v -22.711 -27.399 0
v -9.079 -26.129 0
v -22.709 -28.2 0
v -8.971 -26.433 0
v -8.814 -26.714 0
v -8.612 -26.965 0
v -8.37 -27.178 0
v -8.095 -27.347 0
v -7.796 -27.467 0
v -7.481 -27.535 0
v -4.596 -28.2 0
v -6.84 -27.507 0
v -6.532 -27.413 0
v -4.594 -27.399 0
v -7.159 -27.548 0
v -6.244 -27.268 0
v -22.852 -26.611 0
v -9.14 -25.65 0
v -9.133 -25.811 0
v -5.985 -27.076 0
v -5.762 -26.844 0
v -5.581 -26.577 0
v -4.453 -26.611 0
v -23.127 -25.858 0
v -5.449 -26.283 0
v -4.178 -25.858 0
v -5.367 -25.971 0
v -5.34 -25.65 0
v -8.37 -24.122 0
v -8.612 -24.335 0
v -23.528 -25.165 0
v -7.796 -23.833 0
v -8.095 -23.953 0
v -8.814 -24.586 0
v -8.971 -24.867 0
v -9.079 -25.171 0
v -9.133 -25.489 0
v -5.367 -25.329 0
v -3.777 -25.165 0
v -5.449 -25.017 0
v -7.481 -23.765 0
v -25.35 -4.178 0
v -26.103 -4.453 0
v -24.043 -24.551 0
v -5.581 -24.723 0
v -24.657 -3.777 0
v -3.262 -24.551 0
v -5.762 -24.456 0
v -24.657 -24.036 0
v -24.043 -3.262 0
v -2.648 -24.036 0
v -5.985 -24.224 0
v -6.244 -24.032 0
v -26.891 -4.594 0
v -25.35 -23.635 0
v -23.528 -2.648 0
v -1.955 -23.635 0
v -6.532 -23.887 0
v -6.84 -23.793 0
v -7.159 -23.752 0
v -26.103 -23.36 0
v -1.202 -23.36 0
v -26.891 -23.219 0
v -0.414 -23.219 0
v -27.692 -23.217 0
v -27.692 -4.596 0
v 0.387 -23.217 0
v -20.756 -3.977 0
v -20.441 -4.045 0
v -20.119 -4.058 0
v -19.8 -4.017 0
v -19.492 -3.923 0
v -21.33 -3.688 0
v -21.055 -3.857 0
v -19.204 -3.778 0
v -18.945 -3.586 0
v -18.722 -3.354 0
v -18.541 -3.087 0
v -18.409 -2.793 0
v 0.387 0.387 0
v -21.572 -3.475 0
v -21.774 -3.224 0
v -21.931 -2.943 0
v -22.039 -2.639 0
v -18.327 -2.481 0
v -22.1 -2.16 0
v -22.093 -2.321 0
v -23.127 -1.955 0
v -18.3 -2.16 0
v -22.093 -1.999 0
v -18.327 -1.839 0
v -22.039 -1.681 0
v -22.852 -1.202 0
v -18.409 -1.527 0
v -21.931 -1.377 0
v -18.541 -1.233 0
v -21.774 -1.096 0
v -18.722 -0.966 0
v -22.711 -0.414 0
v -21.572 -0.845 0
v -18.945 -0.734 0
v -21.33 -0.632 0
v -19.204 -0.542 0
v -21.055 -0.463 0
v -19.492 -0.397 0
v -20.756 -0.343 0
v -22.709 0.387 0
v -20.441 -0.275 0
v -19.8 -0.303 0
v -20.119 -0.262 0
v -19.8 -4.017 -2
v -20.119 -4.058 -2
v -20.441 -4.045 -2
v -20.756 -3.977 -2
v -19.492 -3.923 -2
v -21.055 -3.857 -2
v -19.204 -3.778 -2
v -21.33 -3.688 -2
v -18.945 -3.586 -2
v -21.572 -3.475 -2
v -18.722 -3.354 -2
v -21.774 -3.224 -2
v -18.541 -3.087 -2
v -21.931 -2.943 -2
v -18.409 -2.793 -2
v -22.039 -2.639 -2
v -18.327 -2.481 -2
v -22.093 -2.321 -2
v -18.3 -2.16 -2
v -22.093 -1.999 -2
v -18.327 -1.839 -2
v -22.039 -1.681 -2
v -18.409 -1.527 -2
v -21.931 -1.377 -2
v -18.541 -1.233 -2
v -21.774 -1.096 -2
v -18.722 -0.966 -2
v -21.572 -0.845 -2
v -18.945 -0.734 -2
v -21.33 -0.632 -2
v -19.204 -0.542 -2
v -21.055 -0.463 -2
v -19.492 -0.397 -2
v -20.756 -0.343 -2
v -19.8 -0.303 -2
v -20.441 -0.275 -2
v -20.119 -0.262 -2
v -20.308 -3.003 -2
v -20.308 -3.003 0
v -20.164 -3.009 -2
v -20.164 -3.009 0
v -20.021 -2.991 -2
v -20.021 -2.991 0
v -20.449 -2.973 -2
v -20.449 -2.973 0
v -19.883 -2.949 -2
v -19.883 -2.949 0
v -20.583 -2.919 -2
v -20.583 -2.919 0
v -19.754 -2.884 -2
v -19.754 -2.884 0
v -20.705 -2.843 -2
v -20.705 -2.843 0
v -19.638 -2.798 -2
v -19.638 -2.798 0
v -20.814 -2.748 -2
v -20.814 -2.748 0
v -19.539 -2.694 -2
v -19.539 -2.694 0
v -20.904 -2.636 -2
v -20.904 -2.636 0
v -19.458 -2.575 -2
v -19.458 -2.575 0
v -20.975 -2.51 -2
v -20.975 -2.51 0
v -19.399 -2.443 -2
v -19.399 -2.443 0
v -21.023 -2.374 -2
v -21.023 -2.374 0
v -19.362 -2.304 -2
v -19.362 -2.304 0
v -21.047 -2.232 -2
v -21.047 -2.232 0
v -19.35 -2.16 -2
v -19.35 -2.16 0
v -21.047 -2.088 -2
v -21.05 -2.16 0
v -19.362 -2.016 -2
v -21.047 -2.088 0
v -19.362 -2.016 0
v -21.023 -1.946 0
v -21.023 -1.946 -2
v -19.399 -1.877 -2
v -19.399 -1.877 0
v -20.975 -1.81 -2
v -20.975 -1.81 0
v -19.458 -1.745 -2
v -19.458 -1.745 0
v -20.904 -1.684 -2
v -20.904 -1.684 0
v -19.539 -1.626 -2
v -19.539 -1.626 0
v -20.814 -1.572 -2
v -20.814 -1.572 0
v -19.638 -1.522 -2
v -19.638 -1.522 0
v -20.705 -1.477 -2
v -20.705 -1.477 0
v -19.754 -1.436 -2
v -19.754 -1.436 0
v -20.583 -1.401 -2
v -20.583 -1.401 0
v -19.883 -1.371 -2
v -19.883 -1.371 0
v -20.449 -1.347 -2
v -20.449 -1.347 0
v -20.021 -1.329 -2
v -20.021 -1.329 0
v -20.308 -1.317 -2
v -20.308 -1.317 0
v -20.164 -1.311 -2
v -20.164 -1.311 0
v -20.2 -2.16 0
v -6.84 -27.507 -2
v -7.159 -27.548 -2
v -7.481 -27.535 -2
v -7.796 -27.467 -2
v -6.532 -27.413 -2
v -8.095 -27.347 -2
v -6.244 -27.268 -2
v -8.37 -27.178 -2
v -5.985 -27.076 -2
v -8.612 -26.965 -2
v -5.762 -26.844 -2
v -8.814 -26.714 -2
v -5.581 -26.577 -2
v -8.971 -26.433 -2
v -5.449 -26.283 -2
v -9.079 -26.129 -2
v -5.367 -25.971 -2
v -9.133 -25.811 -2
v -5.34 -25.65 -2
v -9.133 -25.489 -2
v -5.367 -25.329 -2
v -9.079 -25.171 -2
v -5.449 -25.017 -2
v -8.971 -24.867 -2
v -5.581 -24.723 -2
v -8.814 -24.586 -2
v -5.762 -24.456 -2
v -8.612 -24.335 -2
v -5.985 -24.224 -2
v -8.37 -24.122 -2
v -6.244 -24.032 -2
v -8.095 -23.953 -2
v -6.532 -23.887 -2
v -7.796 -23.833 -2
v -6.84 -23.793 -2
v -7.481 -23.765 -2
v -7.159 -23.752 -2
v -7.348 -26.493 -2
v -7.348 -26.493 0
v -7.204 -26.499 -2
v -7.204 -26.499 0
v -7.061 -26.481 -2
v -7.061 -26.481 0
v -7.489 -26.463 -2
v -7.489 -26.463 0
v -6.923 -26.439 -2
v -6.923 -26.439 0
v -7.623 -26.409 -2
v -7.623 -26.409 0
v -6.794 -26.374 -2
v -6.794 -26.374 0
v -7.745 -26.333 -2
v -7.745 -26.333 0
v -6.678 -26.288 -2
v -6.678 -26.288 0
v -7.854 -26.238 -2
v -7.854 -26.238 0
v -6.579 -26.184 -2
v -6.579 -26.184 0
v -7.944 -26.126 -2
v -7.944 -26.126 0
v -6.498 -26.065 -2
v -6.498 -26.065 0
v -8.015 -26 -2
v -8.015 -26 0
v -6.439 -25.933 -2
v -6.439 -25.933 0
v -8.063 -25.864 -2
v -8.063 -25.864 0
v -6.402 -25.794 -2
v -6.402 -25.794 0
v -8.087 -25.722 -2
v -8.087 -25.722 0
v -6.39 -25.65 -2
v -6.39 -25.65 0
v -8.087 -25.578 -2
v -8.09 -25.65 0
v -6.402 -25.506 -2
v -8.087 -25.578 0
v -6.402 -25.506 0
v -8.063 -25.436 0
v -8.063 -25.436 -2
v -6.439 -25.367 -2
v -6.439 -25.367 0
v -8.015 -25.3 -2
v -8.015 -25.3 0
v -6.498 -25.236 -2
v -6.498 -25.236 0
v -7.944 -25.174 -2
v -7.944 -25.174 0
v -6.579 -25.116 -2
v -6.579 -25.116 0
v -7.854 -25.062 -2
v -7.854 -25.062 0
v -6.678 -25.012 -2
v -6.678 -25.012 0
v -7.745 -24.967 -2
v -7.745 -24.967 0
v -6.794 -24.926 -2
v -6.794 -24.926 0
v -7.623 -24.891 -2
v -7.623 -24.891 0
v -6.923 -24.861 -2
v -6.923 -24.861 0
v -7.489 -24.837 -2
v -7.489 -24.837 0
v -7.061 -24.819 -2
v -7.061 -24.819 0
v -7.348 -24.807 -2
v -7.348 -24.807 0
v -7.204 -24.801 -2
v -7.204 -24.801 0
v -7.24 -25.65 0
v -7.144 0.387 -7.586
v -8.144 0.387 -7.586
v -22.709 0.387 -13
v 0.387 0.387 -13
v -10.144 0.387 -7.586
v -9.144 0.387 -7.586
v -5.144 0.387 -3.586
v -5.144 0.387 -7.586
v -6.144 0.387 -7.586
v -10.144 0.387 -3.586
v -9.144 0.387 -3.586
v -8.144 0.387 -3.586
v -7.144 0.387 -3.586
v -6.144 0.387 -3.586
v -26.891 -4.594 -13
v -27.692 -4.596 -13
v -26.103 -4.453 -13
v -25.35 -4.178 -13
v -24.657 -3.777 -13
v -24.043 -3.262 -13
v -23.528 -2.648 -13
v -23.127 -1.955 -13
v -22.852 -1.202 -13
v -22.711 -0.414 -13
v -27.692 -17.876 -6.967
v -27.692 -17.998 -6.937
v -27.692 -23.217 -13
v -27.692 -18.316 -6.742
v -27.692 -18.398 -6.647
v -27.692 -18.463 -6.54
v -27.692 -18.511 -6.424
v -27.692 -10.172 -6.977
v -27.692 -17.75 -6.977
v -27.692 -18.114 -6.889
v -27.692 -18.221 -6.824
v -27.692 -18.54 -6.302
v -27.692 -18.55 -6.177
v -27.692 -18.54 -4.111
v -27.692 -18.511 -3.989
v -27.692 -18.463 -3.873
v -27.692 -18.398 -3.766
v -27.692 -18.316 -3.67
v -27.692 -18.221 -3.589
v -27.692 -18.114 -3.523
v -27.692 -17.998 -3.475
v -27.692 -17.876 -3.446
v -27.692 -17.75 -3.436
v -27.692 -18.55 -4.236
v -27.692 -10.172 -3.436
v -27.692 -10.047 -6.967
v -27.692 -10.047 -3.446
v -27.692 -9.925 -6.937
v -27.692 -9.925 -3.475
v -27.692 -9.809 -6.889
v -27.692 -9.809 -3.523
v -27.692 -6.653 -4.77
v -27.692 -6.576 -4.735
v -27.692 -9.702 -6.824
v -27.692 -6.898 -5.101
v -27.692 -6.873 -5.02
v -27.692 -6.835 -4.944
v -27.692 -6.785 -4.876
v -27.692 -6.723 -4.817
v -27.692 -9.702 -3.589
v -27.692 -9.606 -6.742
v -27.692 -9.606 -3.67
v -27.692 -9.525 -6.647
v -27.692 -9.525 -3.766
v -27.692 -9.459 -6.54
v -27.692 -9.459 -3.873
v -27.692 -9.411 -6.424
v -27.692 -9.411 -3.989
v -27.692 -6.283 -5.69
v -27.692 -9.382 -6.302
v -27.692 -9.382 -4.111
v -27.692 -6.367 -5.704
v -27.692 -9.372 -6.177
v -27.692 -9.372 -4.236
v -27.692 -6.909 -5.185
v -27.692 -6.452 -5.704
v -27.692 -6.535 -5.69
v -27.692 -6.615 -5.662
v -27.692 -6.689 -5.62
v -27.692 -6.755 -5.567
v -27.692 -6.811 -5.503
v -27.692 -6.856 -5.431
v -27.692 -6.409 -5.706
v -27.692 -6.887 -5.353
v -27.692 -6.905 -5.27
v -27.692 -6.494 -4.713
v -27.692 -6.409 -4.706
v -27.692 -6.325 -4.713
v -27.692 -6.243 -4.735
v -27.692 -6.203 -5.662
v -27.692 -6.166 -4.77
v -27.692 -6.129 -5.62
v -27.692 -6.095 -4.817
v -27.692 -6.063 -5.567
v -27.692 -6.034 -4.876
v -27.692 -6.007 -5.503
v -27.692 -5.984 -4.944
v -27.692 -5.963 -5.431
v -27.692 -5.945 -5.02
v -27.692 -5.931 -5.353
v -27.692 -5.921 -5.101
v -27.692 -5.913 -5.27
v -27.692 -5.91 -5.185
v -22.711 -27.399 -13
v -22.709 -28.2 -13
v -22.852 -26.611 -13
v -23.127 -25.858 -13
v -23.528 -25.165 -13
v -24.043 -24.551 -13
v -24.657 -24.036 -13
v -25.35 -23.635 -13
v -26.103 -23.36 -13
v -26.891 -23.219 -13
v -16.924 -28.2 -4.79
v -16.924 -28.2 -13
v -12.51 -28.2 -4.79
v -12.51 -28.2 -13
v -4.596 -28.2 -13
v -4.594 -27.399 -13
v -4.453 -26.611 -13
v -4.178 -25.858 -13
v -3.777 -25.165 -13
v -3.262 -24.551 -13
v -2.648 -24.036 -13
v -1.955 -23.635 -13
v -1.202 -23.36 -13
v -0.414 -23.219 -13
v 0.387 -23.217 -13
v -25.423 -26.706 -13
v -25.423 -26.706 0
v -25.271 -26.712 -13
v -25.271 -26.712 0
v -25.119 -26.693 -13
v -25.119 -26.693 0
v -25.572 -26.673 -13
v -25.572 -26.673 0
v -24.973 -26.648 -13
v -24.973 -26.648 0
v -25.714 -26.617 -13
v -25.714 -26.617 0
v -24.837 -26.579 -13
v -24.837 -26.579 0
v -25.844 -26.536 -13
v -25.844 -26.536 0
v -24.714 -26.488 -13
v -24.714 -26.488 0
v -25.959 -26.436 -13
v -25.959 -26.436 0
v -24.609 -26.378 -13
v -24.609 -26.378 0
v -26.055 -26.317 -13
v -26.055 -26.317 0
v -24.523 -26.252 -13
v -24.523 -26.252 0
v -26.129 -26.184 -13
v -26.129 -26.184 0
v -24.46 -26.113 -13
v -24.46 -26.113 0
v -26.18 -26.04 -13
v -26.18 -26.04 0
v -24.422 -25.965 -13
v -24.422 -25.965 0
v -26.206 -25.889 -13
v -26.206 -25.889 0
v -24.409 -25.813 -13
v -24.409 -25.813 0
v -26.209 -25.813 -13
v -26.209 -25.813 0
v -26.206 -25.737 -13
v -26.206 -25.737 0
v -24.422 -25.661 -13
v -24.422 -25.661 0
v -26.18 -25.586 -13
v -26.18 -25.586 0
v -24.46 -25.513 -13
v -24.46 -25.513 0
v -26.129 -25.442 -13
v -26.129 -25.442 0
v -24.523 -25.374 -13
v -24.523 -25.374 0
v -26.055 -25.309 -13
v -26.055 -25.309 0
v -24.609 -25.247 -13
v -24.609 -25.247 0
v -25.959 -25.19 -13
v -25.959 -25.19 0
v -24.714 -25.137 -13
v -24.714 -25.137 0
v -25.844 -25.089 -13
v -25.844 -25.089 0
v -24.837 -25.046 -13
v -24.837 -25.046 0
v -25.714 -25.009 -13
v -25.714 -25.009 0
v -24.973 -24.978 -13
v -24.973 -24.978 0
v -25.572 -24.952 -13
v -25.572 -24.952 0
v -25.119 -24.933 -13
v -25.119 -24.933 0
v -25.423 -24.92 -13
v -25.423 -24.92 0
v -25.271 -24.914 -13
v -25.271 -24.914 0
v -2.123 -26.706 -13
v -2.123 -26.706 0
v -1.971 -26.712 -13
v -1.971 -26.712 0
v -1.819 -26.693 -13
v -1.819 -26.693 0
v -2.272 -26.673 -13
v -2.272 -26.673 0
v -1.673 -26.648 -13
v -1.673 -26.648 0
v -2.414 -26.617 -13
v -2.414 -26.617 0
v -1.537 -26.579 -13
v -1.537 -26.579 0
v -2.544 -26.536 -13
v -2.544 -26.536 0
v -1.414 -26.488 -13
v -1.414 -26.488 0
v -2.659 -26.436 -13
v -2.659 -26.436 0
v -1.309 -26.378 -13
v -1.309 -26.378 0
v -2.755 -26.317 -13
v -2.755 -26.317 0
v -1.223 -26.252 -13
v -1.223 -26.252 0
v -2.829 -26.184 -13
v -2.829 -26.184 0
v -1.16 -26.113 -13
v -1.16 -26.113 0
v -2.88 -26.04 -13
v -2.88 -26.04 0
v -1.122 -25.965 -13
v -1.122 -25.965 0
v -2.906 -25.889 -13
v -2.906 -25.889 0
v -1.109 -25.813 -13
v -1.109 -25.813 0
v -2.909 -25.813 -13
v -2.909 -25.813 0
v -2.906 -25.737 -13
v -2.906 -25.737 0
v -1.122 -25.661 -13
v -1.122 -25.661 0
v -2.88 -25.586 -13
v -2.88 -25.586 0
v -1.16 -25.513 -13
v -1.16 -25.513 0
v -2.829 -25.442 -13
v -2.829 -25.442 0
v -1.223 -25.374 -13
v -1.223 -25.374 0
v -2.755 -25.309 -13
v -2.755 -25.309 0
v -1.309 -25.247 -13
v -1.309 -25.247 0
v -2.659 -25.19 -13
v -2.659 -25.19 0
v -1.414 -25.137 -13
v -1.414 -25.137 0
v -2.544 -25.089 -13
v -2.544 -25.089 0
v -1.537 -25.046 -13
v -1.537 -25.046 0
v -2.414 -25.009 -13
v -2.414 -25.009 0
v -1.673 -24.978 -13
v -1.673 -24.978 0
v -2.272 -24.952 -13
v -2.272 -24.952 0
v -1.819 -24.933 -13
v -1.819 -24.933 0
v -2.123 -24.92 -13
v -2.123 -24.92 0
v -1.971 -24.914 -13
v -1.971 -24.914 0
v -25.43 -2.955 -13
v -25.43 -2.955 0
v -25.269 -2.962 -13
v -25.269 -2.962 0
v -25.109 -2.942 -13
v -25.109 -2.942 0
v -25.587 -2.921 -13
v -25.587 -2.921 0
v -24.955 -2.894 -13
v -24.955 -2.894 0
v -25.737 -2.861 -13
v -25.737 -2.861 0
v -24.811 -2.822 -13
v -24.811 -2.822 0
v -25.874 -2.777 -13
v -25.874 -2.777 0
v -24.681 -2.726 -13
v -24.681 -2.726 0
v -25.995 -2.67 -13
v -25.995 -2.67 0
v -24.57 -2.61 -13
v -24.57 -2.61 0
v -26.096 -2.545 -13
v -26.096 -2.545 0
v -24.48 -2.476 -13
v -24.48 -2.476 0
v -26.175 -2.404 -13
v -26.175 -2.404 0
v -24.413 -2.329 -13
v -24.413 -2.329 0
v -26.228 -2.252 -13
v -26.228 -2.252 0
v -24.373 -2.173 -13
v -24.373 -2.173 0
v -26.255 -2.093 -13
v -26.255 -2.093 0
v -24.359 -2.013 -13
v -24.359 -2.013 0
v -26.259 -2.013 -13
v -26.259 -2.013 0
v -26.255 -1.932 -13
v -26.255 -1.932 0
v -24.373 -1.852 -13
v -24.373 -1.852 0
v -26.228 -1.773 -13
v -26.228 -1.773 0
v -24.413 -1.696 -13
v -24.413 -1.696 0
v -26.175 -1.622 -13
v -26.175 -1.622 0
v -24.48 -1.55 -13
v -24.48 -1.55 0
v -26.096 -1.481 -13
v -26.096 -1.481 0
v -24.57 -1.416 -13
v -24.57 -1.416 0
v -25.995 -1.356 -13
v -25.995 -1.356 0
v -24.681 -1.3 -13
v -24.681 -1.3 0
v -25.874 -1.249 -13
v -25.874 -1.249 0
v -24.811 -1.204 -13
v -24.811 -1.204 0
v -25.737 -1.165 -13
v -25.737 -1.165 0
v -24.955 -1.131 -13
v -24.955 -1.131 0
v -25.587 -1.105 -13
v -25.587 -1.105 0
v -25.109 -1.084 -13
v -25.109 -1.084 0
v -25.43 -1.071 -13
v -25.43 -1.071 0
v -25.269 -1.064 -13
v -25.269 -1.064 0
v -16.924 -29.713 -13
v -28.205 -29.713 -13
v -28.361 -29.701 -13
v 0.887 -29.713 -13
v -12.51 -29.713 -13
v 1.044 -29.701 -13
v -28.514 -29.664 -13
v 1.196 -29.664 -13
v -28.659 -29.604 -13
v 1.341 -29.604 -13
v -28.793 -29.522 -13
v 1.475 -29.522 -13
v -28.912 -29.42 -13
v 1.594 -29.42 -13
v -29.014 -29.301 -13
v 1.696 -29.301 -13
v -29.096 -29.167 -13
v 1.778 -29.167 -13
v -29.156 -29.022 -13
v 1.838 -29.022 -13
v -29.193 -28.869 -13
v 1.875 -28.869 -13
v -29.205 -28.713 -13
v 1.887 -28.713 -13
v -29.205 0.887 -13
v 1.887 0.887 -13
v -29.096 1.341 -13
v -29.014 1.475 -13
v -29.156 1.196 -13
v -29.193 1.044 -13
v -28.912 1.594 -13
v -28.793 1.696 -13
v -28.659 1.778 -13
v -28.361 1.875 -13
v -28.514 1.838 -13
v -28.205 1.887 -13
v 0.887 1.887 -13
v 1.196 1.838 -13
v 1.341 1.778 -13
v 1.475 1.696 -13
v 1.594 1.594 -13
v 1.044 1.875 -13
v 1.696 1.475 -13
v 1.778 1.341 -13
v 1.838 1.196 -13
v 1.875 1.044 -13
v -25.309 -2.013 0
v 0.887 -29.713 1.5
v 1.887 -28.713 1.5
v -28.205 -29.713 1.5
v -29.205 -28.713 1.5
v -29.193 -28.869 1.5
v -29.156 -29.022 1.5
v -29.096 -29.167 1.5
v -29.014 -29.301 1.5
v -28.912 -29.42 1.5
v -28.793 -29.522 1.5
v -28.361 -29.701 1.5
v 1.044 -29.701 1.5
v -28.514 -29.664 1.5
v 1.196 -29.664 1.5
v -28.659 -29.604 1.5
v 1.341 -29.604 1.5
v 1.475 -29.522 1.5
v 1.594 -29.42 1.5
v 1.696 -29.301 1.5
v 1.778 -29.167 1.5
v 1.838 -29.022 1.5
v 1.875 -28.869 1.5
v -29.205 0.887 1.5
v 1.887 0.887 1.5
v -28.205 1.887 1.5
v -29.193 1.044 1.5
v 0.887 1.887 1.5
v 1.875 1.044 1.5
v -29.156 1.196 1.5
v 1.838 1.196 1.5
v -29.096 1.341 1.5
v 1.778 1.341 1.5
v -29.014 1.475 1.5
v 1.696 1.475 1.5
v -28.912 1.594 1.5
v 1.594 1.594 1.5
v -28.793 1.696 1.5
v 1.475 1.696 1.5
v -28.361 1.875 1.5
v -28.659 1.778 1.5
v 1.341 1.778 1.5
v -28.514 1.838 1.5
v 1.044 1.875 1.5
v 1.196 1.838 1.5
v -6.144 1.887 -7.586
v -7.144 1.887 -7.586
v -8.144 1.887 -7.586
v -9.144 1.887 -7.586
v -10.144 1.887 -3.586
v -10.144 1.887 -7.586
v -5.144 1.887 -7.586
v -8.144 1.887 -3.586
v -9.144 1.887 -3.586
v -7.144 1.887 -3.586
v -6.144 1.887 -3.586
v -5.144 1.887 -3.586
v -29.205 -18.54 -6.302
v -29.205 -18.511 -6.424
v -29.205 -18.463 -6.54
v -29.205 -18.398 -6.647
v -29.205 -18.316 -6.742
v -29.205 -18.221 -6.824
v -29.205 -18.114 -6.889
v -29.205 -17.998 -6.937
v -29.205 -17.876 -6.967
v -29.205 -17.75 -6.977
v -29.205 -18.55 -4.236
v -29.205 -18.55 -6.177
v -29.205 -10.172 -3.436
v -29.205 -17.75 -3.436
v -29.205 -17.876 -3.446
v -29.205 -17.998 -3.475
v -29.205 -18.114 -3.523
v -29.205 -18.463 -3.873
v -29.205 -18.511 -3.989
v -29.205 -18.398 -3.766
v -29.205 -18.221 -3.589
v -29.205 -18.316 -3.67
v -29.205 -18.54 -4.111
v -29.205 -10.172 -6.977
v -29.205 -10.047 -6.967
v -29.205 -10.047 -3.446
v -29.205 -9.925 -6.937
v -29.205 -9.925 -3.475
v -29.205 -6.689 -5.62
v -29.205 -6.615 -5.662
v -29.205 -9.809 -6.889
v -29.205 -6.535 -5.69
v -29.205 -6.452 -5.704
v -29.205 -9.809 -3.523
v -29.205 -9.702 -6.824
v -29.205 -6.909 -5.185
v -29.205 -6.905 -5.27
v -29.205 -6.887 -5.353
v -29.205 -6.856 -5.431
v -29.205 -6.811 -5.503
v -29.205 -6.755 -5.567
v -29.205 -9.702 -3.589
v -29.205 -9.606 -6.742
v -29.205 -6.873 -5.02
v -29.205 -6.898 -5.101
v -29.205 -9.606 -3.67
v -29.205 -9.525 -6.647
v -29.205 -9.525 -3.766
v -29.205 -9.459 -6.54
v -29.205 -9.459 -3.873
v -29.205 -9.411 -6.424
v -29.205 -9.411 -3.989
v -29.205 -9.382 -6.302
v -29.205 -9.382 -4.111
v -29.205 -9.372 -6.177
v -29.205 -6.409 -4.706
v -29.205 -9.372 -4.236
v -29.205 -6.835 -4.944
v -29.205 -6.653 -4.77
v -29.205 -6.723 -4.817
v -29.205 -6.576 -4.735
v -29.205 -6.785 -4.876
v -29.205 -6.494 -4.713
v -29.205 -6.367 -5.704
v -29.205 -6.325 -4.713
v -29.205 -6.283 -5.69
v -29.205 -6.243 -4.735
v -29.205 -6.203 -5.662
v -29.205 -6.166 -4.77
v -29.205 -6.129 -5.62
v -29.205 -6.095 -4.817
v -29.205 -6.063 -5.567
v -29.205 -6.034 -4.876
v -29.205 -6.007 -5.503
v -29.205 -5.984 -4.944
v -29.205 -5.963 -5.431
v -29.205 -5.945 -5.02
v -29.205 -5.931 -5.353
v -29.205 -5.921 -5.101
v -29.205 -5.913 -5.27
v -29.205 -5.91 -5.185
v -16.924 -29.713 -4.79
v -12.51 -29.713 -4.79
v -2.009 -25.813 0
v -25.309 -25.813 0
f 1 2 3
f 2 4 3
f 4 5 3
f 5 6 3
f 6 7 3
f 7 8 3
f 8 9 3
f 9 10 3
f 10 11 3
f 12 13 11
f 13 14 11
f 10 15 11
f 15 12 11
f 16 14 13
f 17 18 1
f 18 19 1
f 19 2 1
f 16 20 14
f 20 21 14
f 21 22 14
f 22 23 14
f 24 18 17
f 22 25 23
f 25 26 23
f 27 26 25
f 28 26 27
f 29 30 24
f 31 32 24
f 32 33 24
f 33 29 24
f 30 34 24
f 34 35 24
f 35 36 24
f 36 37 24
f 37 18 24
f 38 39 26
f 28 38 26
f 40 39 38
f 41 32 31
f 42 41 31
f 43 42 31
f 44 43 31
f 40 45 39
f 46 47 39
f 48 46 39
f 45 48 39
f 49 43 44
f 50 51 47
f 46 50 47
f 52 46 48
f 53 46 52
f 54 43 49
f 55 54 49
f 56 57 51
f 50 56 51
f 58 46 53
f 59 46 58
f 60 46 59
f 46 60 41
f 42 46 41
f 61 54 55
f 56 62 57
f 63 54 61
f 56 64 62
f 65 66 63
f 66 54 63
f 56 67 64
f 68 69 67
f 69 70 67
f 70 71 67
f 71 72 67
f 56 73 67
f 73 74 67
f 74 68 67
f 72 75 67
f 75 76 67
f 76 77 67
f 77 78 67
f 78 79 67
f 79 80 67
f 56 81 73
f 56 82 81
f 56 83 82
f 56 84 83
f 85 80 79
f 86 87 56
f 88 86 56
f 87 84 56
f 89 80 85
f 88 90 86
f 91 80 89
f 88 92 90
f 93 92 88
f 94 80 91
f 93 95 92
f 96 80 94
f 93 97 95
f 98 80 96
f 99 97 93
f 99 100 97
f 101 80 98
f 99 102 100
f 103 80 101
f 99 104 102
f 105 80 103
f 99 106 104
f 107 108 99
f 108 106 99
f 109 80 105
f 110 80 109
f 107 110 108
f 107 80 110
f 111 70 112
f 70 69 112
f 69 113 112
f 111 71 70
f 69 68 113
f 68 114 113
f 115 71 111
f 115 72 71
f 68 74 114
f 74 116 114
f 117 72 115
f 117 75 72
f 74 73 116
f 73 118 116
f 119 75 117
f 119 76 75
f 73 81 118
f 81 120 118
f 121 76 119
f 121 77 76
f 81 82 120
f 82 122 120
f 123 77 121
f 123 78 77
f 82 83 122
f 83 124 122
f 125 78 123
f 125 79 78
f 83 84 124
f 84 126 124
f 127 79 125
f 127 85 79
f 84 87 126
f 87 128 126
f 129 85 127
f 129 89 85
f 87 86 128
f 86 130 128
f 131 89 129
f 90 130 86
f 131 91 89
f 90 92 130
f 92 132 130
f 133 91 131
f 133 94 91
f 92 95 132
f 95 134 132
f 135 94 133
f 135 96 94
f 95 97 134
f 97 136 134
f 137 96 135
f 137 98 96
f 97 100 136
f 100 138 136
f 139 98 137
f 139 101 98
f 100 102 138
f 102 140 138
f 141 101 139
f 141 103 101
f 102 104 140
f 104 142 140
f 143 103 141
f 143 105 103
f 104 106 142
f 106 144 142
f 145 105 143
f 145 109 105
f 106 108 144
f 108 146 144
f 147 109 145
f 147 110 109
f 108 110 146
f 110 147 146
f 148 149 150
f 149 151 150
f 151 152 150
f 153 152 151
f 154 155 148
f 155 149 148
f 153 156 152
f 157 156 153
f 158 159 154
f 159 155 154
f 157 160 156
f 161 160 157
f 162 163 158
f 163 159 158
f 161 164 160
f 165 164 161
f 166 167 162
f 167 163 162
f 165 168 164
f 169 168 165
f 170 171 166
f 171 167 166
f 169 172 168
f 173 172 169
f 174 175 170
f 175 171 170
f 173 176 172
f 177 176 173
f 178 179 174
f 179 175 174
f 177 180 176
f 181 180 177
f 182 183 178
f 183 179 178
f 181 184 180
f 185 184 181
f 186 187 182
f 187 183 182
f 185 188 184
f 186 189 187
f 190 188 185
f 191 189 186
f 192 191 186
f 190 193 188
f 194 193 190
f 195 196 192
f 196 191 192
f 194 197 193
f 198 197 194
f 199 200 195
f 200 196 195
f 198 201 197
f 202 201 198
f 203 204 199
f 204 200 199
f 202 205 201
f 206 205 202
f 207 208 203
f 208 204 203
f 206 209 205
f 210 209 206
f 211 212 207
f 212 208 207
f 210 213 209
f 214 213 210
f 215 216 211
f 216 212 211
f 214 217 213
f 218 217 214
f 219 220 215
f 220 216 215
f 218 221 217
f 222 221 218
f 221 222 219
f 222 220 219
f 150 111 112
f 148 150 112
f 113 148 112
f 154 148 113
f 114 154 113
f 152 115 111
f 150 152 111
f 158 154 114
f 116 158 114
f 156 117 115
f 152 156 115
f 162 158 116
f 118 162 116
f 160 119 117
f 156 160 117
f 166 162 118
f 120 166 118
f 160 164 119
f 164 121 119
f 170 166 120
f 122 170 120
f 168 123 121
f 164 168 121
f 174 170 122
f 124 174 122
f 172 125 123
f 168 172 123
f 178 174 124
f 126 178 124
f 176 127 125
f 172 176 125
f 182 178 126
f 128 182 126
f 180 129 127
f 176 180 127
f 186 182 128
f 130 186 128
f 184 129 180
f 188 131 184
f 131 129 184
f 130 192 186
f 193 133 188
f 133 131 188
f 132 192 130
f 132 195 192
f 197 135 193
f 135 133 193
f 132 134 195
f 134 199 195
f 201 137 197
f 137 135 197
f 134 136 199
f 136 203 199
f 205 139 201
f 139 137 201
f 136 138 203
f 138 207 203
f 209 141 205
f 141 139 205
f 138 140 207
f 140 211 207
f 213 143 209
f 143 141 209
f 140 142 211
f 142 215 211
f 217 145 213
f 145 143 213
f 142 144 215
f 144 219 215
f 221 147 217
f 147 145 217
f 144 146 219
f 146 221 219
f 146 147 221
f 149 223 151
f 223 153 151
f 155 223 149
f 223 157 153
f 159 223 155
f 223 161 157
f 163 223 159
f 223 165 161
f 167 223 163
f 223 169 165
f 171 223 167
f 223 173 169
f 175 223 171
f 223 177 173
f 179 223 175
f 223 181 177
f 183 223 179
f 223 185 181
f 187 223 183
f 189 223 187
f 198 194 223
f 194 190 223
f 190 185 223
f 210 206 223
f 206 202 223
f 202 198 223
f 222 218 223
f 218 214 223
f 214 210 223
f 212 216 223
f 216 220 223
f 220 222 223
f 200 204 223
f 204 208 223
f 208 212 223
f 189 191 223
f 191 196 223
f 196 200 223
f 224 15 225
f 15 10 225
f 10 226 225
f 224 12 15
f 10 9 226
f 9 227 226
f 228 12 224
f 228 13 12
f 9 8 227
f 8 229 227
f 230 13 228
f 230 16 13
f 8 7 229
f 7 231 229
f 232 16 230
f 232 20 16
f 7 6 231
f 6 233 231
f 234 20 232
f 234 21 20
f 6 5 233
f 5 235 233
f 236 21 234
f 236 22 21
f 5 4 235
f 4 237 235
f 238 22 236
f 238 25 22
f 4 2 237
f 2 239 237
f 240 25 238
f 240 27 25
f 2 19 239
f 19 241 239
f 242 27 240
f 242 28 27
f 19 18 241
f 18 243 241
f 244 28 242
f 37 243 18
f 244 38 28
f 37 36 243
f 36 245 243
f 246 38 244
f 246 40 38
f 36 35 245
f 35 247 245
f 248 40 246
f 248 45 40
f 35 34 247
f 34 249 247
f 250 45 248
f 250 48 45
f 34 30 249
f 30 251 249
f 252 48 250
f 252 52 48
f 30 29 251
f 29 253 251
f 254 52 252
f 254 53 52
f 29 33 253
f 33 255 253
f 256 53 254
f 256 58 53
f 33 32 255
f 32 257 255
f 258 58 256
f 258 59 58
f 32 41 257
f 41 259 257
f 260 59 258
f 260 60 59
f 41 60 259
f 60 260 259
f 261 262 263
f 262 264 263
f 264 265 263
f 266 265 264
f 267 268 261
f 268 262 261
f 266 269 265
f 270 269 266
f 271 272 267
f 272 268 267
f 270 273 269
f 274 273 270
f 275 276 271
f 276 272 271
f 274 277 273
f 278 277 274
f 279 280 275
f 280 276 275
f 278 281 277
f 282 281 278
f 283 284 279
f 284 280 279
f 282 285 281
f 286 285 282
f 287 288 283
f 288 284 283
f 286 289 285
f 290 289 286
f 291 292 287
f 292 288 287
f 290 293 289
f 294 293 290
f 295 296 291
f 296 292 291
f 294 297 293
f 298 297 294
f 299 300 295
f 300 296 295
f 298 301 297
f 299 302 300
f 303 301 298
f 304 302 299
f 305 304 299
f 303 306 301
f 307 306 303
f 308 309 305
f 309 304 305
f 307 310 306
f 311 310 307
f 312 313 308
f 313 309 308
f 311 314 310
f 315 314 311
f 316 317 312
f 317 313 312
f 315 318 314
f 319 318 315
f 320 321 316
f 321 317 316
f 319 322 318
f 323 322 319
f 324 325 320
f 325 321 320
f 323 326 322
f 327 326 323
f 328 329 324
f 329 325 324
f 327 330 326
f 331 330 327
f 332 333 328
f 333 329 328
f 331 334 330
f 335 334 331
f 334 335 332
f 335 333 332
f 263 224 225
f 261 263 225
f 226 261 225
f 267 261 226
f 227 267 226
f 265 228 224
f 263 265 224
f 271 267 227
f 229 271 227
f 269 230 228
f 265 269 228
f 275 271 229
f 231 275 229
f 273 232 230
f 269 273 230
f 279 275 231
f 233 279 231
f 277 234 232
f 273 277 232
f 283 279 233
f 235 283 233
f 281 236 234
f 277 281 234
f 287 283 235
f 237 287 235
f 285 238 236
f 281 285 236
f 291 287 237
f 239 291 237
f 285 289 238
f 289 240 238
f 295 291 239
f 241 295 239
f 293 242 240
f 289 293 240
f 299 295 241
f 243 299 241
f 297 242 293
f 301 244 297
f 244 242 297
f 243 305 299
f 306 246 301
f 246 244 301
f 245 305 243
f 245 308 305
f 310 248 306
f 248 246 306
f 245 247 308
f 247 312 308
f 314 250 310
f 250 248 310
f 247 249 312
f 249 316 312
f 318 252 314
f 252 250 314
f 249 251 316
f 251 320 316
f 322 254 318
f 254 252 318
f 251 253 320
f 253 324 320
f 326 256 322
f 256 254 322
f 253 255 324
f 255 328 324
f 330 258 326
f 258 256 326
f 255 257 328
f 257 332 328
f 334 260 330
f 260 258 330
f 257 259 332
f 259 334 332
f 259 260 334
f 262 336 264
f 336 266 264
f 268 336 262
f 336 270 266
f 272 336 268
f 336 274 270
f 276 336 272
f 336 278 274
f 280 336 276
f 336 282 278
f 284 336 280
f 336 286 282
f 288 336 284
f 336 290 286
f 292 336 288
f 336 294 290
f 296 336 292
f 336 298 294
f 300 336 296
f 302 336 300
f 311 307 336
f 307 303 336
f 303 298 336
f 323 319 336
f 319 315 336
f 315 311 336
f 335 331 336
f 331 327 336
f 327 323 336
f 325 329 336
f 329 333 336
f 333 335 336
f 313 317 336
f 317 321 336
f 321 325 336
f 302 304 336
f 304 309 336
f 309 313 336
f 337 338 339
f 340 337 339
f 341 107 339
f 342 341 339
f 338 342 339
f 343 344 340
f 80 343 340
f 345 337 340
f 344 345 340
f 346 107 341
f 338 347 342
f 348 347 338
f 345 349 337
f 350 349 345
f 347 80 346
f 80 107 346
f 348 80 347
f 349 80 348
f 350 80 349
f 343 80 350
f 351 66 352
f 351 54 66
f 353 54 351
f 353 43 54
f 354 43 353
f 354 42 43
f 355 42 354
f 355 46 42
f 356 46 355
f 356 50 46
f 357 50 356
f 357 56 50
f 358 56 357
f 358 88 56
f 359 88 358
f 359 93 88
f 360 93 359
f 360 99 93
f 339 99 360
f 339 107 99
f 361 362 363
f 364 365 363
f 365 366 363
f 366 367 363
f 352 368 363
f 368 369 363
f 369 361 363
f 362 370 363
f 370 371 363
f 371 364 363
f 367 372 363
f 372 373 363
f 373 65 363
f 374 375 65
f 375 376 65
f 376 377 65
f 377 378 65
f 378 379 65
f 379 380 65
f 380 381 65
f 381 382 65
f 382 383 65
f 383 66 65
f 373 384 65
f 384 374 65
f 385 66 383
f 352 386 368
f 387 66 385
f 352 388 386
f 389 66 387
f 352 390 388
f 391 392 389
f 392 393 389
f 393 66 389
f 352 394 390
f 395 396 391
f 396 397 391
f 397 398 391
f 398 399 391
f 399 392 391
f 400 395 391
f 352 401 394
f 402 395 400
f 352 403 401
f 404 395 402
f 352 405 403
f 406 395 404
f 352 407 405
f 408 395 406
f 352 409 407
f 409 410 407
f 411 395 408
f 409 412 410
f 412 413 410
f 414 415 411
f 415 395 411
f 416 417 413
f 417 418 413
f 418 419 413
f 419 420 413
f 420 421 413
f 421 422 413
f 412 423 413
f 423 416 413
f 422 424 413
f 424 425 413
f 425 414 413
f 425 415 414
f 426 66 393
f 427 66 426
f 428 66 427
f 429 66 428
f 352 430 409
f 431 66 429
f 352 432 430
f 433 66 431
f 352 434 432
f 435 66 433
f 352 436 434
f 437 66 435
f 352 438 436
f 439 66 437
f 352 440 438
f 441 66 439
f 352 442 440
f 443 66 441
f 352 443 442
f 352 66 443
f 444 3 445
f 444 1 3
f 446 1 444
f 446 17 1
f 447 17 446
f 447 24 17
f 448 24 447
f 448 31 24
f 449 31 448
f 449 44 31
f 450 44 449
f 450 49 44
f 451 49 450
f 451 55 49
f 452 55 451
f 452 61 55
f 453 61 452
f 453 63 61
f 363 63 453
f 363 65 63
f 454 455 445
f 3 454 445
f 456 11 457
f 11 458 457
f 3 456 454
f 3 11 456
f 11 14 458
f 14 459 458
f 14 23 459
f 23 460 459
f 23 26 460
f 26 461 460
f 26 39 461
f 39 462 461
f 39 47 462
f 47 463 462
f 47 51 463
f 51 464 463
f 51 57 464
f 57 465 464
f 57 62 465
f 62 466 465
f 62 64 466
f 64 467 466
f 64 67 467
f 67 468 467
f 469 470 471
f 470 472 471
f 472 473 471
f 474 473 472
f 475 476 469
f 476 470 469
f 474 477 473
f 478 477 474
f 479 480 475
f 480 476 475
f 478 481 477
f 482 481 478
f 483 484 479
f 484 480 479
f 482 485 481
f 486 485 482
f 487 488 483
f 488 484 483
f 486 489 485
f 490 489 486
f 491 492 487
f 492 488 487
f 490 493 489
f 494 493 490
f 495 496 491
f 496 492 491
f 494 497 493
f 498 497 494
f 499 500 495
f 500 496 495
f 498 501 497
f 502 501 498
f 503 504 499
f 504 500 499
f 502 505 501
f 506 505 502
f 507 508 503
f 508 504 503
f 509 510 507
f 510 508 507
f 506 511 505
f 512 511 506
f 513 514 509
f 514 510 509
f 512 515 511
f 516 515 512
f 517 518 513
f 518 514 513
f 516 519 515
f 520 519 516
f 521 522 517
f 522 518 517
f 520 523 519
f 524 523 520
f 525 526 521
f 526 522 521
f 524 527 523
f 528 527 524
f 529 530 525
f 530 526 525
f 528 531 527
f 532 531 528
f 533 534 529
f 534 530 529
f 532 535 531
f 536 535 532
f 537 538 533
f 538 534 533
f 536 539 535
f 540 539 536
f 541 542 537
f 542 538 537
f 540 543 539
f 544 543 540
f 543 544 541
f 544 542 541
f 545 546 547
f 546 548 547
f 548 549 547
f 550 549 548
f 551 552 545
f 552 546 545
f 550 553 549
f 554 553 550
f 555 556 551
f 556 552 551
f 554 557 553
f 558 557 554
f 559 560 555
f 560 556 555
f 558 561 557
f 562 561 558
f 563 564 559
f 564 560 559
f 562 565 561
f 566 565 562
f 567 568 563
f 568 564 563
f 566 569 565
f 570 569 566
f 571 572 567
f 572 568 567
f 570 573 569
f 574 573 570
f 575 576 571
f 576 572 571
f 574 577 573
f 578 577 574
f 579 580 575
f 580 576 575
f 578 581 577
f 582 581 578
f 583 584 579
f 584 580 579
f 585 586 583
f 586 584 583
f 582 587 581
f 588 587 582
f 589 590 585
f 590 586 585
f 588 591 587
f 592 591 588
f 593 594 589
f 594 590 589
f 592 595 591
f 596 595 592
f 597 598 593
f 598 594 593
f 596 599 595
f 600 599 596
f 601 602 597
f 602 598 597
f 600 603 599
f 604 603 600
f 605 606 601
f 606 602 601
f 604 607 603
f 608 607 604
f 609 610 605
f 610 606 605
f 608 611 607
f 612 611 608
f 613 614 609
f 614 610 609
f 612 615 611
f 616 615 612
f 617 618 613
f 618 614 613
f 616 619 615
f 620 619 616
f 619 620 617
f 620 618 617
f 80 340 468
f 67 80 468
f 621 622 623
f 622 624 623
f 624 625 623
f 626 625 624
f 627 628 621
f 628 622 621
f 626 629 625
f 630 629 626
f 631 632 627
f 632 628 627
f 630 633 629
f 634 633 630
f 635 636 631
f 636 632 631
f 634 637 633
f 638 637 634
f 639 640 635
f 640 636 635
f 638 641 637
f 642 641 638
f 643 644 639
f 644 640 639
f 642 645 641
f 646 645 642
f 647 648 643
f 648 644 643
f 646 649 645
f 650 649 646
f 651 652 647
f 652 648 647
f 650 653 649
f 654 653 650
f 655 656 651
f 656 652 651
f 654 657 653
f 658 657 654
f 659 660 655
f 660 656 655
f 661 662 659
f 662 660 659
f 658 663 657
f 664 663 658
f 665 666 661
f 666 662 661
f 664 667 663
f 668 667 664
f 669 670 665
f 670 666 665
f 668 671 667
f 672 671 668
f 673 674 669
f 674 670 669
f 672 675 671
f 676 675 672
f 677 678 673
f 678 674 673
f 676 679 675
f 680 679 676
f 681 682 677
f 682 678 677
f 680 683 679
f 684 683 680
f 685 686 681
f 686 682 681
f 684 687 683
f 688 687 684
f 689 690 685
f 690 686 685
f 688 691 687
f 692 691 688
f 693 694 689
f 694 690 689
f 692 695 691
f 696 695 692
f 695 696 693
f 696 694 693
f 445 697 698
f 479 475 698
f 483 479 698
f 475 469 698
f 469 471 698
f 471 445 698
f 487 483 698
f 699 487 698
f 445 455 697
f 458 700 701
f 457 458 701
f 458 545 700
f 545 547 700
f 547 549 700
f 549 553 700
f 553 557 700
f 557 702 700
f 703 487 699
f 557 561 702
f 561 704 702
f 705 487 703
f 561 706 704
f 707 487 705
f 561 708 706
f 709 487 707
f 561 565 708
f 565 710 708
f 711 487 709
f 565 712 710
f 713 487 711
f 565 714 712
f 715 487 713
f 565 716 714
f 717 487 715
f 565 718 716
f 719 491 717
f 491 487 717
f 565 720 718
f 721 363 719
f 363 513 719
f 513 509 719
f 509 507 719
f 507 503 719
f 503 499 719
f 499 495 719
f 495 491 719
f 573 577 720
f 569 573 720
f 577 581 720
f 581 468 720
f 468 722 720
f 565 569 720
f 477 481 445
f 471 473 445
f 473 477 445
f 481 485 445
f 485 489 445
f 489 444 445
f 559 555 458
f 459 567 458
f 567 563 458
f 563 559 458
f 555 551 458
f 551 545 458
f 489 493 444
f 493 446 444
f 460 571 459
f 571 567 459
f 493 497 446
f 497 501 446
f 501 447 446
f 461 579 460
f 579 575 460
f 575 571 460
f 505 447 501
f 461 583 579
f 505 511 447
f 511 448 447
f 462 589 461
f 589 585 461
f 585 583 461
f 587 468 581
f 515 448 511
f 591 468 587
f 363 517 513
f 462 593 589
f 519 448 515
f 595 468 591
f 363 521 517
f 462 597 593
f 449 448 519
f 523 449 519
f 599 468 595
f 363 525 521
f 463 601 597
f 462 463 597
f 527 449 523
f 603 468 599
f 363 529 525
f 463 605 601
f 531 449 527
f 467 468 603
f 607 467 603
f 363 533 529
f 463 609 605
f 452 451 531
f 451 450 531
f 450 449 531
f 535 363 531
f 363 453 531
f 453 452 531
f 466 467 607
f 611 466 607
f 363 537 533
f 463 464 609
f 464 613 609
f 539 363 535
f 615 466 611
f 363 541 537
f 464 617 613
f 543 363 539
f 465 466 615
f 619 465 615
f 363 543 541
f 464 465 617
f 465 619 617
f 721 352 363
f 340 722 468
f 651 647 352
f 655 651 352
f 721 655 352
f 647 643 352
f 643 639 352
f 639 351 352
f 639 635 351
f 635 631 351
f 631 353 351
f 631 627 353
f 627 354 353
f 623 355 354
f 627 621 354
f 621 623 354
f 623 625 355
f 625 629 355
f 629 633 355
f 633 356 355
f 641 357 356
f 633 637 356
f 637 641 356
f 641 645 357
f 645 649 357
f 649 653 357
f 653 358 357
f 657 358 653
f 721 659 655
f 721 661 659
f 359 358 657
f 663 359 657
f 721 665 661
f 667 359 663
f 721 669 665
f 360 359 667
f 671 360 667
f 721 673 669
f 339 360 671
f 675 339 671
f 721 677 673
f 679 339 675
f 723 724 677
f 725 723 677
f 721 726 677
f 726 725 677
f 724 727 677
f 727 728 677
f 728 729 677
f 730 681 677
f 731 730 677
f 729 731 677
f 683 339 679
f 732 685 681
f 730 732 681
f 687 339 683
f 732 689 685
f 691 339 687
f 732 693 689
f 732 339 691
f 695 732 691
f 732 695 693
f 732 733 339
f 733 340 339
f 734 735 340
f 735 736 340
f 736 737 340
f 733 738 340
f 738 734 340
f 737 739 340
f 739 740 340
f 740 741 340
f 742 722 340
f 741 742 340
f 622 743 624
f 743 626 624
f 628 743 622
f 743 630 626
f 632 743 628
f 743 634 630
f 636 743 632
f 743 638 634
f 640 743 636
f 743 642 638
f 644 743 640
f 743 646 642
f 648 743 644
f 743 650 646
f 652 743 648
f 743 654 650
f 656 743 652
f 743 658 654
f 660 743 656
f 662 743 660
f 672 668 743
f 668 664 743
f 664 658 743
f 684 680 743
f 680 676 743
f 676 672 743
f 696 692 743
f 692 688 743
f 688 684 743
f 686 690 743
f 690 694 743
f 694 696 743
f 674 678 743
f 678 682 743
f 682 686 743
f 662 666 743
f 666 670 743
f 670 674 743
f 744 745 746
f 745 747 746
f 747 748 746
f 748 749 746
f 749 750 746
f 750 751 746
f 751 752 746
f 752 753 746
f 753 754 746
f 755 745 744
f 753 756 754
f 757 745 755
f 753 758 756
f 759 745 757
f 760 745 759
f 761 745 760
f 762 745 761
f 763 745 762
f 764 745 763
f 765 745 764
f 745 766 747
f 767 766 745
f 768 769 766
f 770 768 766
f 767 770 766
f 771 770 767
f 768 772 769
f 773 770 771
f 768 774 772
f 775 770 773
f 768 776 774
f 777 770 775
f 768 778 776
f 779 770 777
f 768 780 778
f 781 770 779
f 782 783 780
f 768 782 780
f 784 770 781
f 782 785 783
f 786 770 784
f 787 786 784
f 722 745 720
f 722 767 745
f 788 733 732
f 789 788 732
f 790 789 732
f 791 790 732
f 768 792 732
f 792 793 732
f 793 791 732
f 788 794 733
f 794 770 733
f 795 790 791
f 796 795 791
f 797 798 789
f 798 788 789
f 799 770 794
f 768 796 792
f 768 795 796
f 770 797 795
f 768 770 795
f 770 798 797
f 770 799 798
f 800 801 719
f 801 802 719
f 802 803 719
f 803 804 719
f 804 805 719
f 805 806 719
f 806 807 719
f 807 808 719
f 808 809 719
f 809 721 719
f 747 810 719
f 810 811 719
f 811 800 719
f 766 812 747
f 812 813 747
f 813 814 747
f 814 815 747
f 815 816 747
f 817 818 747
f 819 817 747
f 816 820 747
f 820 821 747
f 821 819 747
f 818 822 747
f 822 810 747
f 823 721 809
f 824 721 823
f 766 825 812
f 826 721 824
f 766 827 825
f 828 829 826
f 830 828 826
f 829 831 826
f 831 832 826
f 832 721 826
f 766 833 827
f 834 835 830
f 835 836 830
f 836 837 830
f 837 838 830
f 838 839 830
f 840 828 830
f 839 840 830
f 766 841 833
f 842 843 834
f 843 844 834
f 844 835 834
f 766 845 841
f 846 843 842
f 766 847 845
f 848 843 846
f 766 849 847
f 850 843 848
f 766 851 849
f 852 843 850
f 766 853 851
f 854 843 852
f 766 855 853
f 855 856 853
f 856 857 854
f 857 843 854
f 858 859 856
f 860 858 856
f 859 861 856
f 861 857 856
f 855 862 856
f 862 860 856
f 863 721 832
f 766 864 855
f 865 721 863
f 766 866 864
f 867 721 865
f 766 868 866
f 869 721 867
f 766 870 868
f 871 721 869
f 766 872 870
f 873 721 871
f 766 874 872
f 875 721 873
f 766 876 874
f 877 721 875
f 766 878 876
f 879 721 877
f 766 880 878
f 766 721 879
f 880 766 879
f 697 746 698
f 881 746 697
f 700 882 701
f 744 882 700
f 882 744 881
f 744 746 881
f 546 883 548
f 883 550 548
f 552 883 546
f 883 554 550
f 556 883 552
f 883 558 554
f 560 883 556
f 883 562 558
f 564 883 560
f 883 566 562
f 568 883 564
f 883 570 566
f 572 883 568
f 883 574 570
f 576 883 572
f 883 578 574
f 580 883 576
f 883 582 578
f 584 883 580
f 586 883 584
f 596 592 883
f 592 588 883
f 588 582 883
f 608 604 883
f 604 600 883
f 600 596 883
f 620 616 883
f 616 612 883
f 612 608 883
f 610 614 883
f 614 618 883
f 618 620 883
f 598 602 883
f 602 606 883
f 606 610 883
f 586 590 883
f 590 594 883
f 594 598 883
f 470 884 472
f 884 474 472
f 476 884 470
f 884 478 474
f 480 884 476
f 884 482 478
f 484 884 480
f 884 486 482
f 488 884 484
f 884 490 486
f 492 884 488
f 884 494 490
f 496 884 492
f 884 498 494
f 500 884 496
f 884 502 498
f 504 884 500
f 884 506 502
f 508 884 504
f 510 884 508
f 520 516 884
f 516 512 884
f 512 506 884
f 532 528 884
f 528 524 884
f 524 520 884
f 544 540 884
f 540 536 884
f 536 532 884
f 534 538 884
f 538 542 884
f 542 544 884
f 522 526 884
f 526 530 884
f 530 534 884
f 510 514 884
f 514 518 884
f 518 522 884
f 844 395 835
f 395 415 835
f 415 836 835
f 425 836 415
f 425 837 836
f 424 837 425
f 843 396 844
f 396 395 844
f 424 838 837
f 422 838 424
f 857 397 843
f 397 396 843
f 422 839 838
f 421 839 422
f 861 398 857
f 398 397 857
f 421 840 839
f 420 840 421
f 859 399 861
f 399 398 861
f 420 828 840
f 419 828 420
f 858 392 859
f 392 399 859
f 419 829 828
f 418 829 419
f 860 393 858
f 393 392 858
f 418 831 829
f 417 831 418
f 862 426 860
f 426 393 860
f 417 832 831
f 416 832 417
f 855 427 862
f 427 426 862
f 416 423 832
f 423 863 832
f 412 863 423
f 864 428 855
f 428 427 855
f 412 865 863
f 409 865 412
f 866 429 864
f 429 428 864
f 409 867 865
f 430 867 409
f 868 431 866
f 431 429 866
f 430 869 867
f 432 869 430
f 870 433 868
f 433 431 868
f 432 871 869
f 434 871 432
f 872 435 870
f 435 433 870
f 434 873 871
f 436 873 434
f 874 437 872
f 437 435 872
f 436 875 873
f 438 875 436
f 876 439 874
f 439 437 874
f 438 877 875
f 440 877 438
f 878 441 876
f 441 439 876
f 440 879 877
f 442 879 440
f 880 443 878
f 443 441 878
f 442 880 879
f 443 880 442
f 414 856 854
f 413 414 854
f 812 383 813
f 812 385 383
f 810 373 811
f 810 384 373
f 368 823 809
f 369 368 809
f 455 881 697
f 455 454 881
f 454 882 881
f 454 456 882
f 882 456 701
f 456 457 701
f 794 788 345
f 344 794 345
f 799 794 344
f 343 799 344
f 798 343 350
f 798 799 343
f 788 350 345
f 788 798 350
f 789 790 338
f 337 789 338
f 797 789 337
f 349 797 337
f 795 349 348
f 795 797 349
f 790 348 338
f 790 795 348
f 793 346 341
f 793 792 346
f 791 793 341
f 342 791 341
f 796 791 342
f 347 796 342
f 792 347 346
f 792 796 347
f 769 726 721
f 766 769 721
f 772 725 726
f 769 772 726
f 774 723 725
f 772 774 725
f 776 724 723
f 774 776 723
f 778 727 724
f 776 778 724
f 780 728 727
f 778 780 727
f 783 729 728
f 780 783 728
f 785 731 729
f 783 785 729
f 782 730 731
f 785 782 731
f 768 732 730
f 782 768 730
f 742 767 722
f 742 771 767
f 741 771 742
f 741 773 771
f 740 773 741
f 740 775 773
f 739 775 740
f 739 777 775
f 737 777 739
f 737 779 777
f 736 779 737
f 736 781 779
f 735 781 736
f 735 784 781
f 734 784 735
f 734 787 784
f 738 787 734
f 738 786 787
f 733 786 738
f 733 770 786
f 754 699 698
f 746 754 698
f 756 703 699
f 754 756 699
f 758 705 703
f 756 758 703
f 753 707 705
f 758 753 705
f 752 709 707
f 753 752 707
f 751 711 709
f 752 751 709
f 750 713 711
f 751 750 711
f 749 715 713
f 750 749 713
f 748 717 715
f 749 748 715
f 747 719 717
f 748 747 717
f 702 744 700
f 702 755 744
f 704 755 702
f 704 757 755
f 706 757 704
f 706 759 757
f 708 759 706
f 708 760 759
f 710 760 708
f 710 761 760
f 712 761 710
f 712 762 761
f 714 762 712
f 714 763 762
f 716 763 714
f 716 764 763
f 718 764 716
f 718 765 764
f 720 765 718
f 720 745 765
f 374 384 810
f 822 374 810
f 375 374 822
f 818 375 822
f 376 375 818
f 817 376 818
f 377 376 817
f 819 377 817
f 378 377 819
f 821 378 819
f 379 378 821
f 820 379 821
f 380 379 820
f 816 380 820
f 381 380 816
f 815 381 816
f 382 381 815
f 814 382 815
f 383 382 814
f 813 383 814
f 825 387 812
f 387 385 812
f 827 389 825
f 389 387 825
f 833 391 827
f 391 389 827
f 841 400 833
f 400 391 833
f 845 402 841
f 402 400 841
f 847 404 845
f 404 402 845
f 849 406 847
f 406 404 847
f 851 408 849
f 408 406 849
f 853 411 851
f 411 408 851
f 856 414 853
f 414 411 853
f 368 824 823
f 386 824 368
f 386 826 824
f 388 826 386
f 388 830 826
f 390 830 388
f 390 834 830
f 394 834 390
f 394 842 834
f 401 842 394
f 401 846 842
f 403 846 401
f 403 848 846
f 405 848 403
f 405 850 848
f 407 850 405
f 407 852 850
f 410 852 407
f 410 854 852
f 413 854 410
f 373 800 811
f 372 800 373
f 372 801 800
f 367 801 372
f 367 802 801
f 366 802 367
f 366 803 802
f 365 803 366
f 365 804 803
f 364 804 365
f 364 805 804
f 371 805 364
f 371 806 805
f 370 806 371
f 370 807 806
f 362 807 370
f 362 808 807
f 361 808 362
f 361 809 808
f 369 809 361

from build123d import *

# Parameters (mm, degrees)
SKETCH_2_W          = 31.092354585
SKETCH_2_H          = 31.600355601
EXTRUDE_1_DEPTH     = 1.5
SKETCH_3_R          = 1.9
SKETCH_3_R_2        = 0.85
EXTRUDE_2_DEPTH     = 2
SKETCH_4_W          = 31.092354585
SKETCH_4_H          = 31.600355601
SKETCH_4_R          = 0.9
SKETCH_4_R_2        = 0.95
EXTRUDE_3_DEPTH     = 13
CUT_EXTRUDE_1_REACH = 46.929
SKETCH_5_R          = 0.5
SKETCH_5_W          = 3.540807658
SKETCH_5_H          = 9.178364527
CUT_EXTRUDE_2_REACH = 46.95
SKETCH_6_W          = 4.41346869
SKETCH_6_H          = 8.209522231
CUT_EXTRUDE_3_REACH = 46.95
SKETCH_8_W          = 1
SKETCH_8_H          = 4
FILLET_1_R          = 1
FILLET_2_R          = 0.8


with BuildPart() as part:
    # 草图2 → 凸台-拉伸1 (new body)
    with BuildSketch(Plane.XY):
        with Locations((-13.658877318, -13.912877826)):
            Rectangle(SKETCH_2_W, SKETCH_2_H)
    extrude(amount=EXTRUDE_1_DEPTH)

    # 草图3 → 凸台-拉伸2 (add)
    # profile 1 of 2: a face of its own
    with BuildSketch(Plane(origin=(0, 0, 0), x_dir=(-1, 0, 0), z_dir=(0, 0, -1))):
        with Locations(Location((20.20004064, -2.16000508, 0), (0, 0, 180))):
            Circle(SKETCH_3_R)
        with Locations(Location((20.20004064, -2.16000508, 0), (0, 0, 180))):
            Circle(SKETCH_3_R_2, mode=Mode.SUBTRACT)
    # profile 2 of 2: a face of its own
    with BuildSketch(Plane(origin=(0, 0, 0), x_dir=(-1, 0, 0), z_dir=(0, 0, -1))):
        with Locations(Location((7.24001524, -25.6500508, 0), (0, 0, 180))):
            Circle(SKETCH_3_R)
        with Locations(Location((7.24001524, -25.6500508, 0), (0, 0, 180))):
            Circle(SKETCH_3_R_2, mode=Mode.SUBTRACT)
    extrude(amount=EXTRUDE_2_DEPTH)

    # 草图4 → 凸台-拉伸3 (add)
    # profile 1 of 2: a face of its own
    with BuildSketch(Plane(origin=(0, 0, 0), x_dir=(-1, 0, 0), z_dir=(0, 0, -1))):
        with Locations((13.658877318, -13.912877826)):
            Rectangle(SKETCH_4_W, SKETCH_4_H)
        Polygon((-0.387299975, -28.213055626), (-0.387299975, -23.216633759), (-0.387299975, 0.387299975), (22.708632743, 0.387299975), (27.70505461, 0.387299975), (27.70505461, -28.213055626), align=None, mode=Mode.SUBTRACT)
    # profile 2 of 2: a face of its own
    with BuildSketch(Plane(origin=(0, 0, 0), x_dir=(-1, 0, 0), z_dir=(0, 0, -1))):
        with BuildLine():
            Line((22.708632743, -28.200355601), (4.596421868, -28.200355601))
            ThreePointArc((4.596421868, -28.200355601), (3.261678652, -24.551376974), (-0.387299975, -23.216633759))
            Line((-0.387299975, -23.216633759), (-0.387299975, -28.213055626))
            Line((-0.387299975, -28.213055626), (27.70505461, -28.213055626))
            Line((27.70505461, -28.213055626), (27.70505461, 0.387299975))
            Line((27.70505461, 0.387299975), (22.708632743, 0.387299975))
            ThreePointArc((22.708632743, 0.387299975), (24.043375958, -3.261678652), (27.692354585, -4.596421868))
            Line((27.692354585, -4.596421868), (27.692354585, -23.216633759))
            ThreePointArc((27.692354585, -23.216633759), (24.043375958, -24.551376974), (22.708632743, -28.200355601))
        make_face()
        with Locations(Location((2.008877318, -25.812877826, 0), (0, 0, 180))):
            Circle(SKETCH_4_R, mode=Mode.SUBTRACT)
        with Locations(Location((25.308877318, -25.812877826, 0), (0, 0, 180))):
            Circle(SKETCH_4_R, mode=Mode.SUBTRACT)
        with Locations(Location((25.308877318, -2.012877826, 0), (0, 0, 180))):
            Circle(SKETCH_4_R_2, mode=Mode.SUBTRACT)
    extrude(amount=EXTRUDE_3_DEPTH)

    # 草图5 → 切除-拉伸1 (cut, up to next)
    with BuildSketch(Plane.ZY.offset(29.20505461), mode=Mode.PRIVATE) as cut_extrude_1_sk1:
        with Locations((-5.206157057, -6.409348234)):
            Circle(SKETCH_5_R)
    cut_extrude_1_tool1 = extrude(cut_extrude_1_sk1.sketch, amount=-CUT_EXTRUDE_1_REACH, mode=Mode.PRIVATE) & part.part
    # 草图5 → 切除-拉伸1 (cut, up to next)
    with BuildSketch(Plane.ZY.offset(29.20505461), mode=Mode.PRIVATE) as cut_extrude_1_sk2:
        with Locations((-5.206157057, -13.961165862)):
            Rectangle(SKETCH_5_W, SKETCH_5_H)
    cut_extrude_1_tool2 = extrude(cut_extrude_1_sk2.sketch, amount=-CUT_EXTRUDE_1_REACH, mode=Mode.PRIVATE) & part.part
    add(cut_extrude_1_tool1.solids().sort_by_distance((-29.205055, -6.409348, -5.206157))[0], mode=Mode.SUBTRACT)
    add(cut_extrude_1_tool2.solids().sort_by_distance((-29.205055, -13.961166, -5.206157))[0], mode=Mode.SUBTRACT)

    # 草图6 → 切除-拉伸2 (cut, up to next)
    with BuildSketch(Plane.XZ.offset(29.713055626), mode=Mode.PRIVATE) as cut_extrude_2_sk1:
        with Locations((-14.717018129, -8.895238884)):
            Rectangle(SKETCH_6_W, SKETCH_6_H)
    cut_extrude_2_tool1 = extrude(cut_extrude_2_sk1.sketch, amount=-CUT_EXTRUDE_2_REACH, mode=Mode.PRIVATE) & part.part
    add(cut_extrude_2_tool1.solids().sort_by_distance((-14.717018, -29.713056, -8.895239))[0], mode=Mode.SUBTRACT)

    # 草图8 → 切除-拉伸3 (cut, up to next)
    with BuildSketch(Plane(origin=(0, 1.887299975, 0), x_dir=(1, 0, 0), z_dir=(0, 1, 0)), mode=Mode.PRIVATE) as cut_extrude_3_sk1:
        with Locations((-7.644018288, 5.586156972)):
            Rectangle(SKETCH_8_W, SKETCH_8_H)
    cut_extrude_3_tool1 = extrude(cut_extrude_3_sk1.sketch, amount=-CUT_EXTRUDE_3_REACH, mode=Mode.PRIVATE) & part.part
    # 草图8 → 切除-拉伸3 (cut, up to next)
    with BuildSketch(Plane(origin=(0, 1.887299975, 0), x_dir=(1, 0, 0), z_dir=(0, 1, 0)), mode=Mode.PRIVATE) as cut_extrude_3_sk2:
        with Locations((-9.644018288, 5.586156972)):
            Rectangle(SKETCH_8_W, SKETCH_8_H)
    cut_extrude_3_tool2 = extrude(cut_extrude_3_sk2.sketch, amount=-CUT_EXTRUDE_3_REACH, mode=Mode.PRIVATE) & part.part
    # 草图8 → 切除-拉伸3 (cut, up to next)
    with BuildSketch(Plane(origin=(0, 1.887299975, 0), x_dir=(1, 0, 0), z_dir=(0, 1, 0)), mode=Mode.PRIVATE) as cut_extrude_3_sk3:
        with Locations((-5.644018288, 5.586156972)):
            Rectangle(SKETCH_8_W, SKETCH_8_H)
    cut_extrude_3_tool3 = extrude(cut_extrude_3_sk3.sketch, amount=-CUT_EXTRUDE_3_REACH, mode=Mode.PRIVATE) & part.part
    add(cut_extrude_3_tool1.solids().sort_by_distance((-7.644018, 1.8873, -5.586157))[0], mode=Mode.SUBTRACT)
    add(cut_extrude_3_tool2.solids().sort_by_distance((-9.644018, 1.8873, -5.586157))[0], mode=Mode.SUBTRACT)
    add(cut_extrude_3_tool3.solids().sort_by_distance((-5.644018, 1.8873, -5.586157))[0], mode=Mode.SUBTRACT)

    # 圆角1
    fillet_1_edges = [part.edges().sort_by_distance(p)[0] for p in [
        (-29.20505461, 1.887299975, -5.75),
        (1.887299975, 1.887299975, -5.75),
        (1.887299975, -29.713055626, -5.75),
        (-29.20505461, -29.713055626, -5.75),
    ]]
    fillet(fillet_1_edges, radius=FILLET_1_R)

    # 圆角2
    fillet_2_edges = [part.edges().sort_by_distance(p)[0] for p in [
        (-28.448704597, -9.371983599, -6.976560886),
        (-28.448704597, -9.371983599, -3.435753228),
        (-28.448704597, -18.550348126, -3.435753228),
        (-28.448704597, -18.550348126, -6.976560886),
    ]]
    fillet(fillet_2_edges, radius=FILLET_2_R)


solid = part.part
